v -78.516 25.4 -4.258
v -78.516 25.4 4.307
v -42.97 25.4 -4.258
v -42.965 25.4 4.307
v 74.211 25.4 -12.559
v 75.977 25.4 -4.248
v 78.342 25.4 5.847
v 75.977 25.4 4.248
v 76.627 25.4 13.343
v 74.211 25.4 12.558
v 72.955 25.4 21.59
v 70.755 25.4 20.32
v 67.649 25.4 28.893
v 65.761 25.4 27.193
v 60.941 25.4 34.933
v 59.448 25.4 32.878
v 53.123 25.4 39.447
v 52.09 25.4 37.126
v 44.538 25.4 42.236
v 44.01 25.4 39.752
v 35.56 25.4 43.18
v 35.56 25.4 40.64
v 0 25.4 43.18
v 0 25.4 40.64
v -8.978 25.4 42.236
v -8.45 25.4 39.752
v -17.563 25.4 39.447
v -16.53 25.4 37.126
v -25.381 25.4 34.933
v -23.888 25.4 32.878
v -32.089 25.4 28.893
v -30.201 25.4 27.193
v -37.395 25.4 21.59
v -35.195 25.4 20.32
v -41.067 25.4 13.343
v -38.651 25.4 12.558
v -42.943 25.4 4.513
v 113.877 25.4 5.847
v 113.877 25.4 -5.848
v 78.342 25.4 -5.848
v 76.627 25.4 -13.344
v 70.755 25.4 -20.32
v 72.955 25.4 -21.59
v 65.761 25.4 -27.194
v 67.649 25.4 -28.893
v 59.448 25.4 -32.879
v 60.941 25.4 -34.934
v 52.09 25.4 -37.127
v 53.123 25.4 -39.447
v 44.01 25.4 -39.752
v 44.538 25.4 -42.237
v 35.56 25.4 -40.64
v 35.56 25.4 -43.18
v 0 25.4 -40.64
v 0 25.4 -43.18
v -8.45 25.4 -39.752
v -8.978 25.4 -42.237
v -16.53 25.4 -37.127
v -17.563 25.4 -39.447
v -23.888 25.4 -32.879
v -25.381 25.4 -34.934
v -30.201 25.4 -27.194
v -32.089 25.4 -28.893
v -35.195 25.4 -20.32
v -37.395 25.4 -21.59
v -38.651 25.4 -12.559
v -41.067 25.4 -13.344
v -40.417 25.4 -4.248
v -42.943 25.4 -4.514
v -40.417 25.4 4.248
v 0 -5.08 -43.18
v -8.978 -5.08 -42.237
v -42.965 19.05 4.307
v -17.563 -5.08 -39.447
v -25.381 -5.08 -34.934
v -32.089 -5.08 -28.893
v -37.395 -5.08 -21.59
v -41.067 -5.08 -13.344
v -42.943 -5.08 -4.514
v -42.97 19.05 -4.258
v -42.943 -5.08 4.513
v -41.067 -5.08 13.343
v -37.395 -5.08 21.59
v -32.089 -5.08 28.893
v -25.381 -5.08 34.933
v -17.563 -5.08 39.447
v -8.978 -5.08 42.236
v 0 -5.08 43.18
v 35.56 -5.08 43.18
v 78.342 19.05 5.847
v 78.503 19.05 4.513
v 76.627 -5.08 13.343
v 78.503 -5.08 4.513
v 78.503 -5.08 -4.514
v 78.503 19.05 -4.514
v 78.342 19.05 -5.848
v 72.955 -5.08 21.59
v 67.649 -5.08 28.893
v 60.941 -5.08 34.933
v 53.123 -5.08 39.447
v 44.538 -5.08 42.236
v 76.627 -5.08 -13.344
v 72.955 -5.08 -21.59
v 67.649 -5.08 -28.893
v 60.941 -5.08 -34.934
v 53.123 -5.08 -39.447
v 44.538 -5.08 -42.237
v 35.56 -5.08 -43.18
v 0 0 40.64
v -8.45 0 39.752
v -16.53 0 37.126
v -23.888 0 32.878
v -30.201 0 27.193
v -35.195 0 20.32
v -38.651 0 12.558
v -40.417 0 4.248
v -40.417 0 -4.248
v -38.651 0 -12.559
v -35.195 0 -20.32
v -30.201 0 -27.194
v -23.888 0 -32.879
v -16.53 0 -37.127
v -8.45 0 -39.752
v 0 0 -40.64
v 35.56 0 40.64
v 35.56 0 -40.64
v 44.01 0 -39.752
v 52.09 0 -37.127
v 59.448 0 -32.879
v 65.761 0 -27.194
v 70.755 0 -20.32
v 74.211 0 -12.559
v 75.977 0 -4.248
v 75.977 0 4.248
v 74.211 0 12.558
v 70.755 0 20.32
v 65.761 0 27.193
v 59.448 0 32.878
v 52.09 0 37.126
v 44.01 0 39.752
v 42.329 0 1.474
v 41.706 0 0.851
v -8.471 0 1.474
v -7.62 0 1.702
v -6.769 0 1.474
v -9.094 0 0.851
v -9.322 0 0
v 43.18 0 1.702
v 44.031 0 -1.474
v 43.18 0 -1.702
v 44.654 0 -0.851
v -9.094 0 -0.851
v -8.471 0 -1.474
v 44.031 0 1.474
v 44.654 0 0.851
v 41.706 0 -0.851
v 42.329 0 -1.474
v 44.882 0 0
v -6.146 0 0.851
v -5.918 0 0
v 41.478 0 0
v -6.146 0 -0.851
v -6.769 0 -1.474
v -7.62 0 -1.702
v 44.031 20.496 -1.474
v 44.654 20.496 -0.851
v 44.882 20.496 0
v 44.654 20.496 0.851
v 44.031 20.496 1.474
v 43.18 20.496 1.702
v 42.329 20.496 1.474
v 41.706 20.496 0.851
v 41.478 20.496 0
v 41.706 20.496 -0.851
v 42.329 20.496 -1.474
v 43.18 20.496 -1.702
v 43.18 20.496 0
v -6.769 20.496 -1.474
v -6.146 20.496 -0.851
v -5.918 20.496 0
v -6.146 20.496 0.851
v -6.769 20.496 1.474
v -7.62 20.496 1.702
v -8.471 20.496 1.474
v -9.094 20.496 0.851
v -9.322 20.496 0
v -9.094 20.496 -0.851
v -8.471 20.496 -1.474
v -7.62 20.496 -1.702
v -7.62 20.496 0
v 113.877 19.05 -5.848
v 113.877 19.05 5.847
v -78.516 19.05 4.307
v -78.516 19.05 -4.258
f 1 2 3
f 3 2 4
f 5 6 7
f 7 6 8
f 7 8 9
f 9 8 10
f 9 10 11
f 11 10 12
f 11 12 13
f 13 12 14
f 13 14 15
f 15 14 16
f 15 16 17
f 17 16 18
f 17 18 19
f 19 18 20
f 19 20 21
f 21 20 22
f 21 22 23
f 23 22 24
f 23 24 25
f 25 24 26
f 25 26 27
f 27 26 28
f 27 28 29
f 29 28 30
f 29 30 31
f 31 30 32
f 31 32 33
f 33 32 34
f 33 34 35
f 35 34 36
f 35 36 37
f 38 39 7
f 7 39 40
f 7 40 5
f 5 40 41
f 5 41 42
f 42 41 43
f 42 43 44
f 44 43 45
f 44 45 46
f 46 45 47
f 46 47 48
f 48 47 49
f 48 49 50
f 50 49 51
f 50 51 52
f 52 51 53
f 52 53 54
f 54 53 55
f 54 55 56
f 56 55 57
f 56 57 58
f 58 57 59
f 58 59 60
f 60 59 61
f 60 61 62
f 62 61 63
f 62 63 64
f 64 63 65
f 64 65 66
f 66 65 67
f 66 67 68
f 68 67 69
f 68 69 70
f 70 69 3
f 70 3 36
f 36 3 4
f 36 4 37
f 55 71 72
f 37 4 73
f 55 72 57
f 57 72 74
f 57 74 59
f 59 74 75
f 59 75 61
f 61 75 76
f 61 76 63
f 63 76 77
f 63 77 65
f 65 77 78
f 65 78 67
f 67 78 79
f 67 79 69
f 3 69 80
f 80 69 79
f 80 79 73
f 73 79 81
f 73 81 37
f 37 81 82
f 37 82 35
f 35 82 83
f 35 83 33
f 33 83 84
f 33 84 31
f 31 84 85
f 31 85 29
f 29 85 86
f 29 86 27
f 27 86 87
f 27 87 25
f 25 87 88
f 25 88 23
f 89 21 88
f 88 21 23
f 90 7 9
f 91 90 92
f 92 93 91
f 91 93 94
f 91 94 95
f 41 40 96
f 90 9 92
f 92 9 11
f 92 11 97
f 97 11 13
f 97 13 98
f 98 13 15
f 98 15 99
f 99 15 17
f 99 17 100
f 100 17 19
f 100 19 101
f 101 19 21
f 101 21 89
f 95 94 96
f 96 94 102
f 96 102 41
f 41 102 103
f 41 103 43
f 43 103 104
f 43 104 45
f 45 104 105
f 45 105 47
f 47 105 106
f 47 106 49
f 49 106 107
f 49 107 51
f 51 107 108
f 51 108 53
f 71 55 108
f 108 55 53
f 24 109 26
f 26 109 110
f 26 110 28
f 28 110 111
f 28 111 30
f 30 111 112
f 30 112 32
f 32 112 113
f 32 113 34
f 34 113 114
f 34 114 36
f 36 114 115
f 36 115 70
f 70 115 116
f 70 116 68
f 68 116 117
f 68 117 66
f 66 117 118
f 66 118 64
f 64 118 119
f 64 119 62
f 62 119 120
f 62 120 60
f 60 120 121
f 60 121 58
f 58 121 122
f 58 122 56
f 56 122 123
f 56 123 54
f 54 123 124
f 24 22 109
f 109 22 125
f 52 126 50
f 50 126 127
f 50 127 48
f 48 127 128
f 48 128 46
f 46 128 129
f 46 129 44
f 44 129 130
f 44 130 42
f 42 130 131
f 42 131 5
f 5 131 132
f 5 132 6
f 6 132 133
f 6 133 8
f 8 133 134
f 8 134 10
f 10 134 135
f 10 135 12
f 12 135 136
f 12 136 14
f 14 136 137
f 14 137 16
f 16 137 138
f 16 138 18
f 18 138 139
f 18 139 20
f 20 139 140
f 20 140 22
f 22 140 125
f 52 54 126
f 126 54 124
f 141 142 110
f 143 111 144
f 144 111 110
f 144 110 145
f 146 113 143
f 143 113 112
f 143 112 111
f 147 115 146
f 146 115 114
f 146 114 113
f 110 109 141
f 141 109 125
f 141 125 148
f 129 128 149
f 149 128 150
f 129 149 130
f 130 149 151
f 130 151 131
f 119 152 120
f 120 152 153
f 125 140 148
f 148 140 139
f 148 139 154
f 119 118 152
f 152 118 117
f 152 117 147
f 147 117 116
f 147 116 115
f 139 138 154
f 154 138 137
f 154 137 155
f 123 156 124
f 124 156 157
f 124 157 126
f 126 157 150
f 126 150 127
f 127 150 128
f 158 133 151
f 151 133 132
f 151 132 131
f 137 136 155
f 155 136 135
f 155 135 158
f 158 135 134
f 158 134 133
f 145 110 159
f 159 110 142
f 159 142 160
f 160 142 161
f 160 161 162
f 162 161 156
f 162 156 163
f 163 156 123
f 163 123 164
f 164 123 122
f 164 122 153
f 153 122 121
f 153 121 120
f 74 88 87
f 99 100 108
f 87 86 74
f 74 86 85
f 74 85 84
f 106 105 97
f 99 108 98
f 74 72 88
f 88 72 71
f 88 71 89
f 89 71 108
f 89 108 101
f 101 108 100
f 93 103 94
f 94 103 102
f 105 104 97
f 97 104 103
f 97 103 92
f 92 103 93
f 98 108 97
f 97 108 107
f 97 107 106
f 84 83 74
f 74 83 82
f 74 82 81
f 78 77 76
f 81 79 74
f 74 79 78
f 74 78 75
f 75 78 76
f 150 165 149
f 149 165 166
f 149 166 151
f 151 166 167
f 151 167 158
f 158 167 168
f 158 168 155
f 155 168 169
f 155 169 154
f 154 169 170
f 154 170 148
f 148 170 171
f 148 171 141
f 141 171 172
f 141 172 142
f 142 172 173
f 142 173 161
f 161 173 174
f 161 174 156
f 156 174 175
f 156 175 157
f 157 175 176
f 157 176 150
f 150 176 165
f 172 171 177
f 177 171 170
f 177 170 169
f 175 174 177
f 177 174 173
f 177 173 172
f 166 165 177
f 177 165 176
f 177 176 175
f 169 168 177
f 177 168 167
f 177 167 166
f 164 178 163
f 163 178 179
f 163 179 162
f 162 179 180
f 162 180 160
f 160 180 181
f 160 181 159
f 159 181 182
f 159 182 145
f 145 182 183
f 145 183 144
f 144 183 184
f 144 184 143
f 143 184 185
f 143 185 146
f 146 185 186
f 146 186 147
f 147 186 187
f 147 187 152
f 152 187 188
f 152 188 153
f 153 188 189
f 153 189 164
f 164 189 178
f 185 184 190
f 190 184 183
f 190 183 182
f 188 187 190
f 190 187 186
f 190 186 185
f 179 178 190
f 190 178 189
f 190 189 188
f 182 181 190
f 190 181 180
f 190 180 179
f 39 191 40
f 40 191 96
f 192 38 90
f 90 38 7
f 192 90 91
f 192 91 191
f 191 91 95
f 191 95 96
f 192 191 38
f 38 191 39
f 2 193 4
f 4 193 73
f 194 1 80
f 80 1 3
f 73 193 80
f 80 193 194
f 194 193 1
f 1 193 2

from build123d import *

# Parameters (mm, degrees)
BOSS_EXTRUDE1_DEPTH = 25.4
BOSS_EXTRUDE2_START = -30.48
BOSS_EXTRUDE2_DEPTH = 5.08
SKETCH4_R           = 1.7018
BOSS_EXTRUDE3_DEPTH = 20.4964
BOSS_EXTRUDE4_START = -6.35
BOSS_EXTRUDE4_DEPTH = 6.35


with BuildPart() as part:
    # Sketch1 → Boss-Extrude1 (new body)
    with BuildSketch(Plane(origin=(0, 0, 0), x_dir=(1, 0, 0), z_dir=(0, 1, 0))):
        with BuildLine():
            Line((0, 43.18), (35.56, 43.18))
            ThreePointArc((35.56, 43.18), (78.74, 0), (35.56, -43.18))
            Line((35.56, -43.18), (0, -43.18))
            ThreePointArc((0, -43.18), (-43.18, 0), (0, 43.18))
        make_face()
        with BuildLine():
            Line((0, 40.64), (35.56, 40.64))
            ThreePointArc((35.56, 40.64), (76.2, 0), (35.56, -40.64))
            Line((35.56, -40.64), (0, -40.64))
            ThreePointArc((0, -40.64), (-40.64, 0), (0, 40.64))
        make_face(mode=Mode.SUBTRACT)
    extrude(amount=BOSS_EXTRUDE1_DEPTH)

    # Sketch3 → Boss-Extrude2 (add)
    with BuildSketch(Plane(origin=(0, 25.4, 0), x_dir=(1, 0, 0), z_dir=(0, 1, 0)).offset(BOSS_EXTRUDE2_START)):
        with BuildLine():
            Line((0, 43.18), (35.56, 43.18))
            ThreePointArc((35.56, 43.18), (78.74, 0), (35.56, -43.18))
            Line((35.56, -43.18), (0, -43.18))
            ThreePointArc((0, -43.18), (-43.18, 0), (0, 43.18))
        make_face()
    extrude(amount=BOSS_EXTRUDE2_DEPTH)

    # Sketch4 → Boss-Extrude3 (add)
    with BuildSketch(Plane(origin=(0, 0, 0), x_dir=(1, 0, 0), z_dir=(0, 1, 0))):
        with Locations(Location((43.18, 0, 0), (0, 0, 270))):
            Circle(SKETCH4_R)
        with Locations(Location((-7.62, 0, 0), (0, 0, 270))):
            Circle(SKETCH4_R)
    extrude(amount=BOSS_EXTRUDE3_DEPTH)

    # Sketch5 → Boss-Extrude4 (add)
    with BuildSketch(Plane(origin=(0, 25.4, 0), x_dir=(1, 0, 0), z_dir=(0, 1, 0)).offset(BOSS_EXTRUDE4_START)):
        with BuildLine():
            Line((-40.416376905, 4.257473181), (-78.516376905, 4.257473181))
            Line((-78.516376905, 4.257473181), (-78.516376905, -4.307631169))
            Line((-78.516376905, -4.307631169), (-40.411061774, -4.307631169))
            ThreePointArc((-40.411061774, -4.307631169), (-40.639992175, -0.025219409), (-40.416376905, 4.257473181))
        make_face()
        with BuildLine():
            Line((75.777132348, 5.847381095), (113.877132348, 5.847381095))
            Line((113.877132348, 5.847381095), (113.877132348, -5.847381095))
            Line((113.877132348, -5.847381095), (75.777132348, -5.847381095))
            ThreePointArc((75.777132348, -5.847381095), (76.2, 0), (75.777132348, 5.847381095))
        make_face()
    extrude(amount=BOSS_EXTRUDE4_DEPTH)


solid = part.part
